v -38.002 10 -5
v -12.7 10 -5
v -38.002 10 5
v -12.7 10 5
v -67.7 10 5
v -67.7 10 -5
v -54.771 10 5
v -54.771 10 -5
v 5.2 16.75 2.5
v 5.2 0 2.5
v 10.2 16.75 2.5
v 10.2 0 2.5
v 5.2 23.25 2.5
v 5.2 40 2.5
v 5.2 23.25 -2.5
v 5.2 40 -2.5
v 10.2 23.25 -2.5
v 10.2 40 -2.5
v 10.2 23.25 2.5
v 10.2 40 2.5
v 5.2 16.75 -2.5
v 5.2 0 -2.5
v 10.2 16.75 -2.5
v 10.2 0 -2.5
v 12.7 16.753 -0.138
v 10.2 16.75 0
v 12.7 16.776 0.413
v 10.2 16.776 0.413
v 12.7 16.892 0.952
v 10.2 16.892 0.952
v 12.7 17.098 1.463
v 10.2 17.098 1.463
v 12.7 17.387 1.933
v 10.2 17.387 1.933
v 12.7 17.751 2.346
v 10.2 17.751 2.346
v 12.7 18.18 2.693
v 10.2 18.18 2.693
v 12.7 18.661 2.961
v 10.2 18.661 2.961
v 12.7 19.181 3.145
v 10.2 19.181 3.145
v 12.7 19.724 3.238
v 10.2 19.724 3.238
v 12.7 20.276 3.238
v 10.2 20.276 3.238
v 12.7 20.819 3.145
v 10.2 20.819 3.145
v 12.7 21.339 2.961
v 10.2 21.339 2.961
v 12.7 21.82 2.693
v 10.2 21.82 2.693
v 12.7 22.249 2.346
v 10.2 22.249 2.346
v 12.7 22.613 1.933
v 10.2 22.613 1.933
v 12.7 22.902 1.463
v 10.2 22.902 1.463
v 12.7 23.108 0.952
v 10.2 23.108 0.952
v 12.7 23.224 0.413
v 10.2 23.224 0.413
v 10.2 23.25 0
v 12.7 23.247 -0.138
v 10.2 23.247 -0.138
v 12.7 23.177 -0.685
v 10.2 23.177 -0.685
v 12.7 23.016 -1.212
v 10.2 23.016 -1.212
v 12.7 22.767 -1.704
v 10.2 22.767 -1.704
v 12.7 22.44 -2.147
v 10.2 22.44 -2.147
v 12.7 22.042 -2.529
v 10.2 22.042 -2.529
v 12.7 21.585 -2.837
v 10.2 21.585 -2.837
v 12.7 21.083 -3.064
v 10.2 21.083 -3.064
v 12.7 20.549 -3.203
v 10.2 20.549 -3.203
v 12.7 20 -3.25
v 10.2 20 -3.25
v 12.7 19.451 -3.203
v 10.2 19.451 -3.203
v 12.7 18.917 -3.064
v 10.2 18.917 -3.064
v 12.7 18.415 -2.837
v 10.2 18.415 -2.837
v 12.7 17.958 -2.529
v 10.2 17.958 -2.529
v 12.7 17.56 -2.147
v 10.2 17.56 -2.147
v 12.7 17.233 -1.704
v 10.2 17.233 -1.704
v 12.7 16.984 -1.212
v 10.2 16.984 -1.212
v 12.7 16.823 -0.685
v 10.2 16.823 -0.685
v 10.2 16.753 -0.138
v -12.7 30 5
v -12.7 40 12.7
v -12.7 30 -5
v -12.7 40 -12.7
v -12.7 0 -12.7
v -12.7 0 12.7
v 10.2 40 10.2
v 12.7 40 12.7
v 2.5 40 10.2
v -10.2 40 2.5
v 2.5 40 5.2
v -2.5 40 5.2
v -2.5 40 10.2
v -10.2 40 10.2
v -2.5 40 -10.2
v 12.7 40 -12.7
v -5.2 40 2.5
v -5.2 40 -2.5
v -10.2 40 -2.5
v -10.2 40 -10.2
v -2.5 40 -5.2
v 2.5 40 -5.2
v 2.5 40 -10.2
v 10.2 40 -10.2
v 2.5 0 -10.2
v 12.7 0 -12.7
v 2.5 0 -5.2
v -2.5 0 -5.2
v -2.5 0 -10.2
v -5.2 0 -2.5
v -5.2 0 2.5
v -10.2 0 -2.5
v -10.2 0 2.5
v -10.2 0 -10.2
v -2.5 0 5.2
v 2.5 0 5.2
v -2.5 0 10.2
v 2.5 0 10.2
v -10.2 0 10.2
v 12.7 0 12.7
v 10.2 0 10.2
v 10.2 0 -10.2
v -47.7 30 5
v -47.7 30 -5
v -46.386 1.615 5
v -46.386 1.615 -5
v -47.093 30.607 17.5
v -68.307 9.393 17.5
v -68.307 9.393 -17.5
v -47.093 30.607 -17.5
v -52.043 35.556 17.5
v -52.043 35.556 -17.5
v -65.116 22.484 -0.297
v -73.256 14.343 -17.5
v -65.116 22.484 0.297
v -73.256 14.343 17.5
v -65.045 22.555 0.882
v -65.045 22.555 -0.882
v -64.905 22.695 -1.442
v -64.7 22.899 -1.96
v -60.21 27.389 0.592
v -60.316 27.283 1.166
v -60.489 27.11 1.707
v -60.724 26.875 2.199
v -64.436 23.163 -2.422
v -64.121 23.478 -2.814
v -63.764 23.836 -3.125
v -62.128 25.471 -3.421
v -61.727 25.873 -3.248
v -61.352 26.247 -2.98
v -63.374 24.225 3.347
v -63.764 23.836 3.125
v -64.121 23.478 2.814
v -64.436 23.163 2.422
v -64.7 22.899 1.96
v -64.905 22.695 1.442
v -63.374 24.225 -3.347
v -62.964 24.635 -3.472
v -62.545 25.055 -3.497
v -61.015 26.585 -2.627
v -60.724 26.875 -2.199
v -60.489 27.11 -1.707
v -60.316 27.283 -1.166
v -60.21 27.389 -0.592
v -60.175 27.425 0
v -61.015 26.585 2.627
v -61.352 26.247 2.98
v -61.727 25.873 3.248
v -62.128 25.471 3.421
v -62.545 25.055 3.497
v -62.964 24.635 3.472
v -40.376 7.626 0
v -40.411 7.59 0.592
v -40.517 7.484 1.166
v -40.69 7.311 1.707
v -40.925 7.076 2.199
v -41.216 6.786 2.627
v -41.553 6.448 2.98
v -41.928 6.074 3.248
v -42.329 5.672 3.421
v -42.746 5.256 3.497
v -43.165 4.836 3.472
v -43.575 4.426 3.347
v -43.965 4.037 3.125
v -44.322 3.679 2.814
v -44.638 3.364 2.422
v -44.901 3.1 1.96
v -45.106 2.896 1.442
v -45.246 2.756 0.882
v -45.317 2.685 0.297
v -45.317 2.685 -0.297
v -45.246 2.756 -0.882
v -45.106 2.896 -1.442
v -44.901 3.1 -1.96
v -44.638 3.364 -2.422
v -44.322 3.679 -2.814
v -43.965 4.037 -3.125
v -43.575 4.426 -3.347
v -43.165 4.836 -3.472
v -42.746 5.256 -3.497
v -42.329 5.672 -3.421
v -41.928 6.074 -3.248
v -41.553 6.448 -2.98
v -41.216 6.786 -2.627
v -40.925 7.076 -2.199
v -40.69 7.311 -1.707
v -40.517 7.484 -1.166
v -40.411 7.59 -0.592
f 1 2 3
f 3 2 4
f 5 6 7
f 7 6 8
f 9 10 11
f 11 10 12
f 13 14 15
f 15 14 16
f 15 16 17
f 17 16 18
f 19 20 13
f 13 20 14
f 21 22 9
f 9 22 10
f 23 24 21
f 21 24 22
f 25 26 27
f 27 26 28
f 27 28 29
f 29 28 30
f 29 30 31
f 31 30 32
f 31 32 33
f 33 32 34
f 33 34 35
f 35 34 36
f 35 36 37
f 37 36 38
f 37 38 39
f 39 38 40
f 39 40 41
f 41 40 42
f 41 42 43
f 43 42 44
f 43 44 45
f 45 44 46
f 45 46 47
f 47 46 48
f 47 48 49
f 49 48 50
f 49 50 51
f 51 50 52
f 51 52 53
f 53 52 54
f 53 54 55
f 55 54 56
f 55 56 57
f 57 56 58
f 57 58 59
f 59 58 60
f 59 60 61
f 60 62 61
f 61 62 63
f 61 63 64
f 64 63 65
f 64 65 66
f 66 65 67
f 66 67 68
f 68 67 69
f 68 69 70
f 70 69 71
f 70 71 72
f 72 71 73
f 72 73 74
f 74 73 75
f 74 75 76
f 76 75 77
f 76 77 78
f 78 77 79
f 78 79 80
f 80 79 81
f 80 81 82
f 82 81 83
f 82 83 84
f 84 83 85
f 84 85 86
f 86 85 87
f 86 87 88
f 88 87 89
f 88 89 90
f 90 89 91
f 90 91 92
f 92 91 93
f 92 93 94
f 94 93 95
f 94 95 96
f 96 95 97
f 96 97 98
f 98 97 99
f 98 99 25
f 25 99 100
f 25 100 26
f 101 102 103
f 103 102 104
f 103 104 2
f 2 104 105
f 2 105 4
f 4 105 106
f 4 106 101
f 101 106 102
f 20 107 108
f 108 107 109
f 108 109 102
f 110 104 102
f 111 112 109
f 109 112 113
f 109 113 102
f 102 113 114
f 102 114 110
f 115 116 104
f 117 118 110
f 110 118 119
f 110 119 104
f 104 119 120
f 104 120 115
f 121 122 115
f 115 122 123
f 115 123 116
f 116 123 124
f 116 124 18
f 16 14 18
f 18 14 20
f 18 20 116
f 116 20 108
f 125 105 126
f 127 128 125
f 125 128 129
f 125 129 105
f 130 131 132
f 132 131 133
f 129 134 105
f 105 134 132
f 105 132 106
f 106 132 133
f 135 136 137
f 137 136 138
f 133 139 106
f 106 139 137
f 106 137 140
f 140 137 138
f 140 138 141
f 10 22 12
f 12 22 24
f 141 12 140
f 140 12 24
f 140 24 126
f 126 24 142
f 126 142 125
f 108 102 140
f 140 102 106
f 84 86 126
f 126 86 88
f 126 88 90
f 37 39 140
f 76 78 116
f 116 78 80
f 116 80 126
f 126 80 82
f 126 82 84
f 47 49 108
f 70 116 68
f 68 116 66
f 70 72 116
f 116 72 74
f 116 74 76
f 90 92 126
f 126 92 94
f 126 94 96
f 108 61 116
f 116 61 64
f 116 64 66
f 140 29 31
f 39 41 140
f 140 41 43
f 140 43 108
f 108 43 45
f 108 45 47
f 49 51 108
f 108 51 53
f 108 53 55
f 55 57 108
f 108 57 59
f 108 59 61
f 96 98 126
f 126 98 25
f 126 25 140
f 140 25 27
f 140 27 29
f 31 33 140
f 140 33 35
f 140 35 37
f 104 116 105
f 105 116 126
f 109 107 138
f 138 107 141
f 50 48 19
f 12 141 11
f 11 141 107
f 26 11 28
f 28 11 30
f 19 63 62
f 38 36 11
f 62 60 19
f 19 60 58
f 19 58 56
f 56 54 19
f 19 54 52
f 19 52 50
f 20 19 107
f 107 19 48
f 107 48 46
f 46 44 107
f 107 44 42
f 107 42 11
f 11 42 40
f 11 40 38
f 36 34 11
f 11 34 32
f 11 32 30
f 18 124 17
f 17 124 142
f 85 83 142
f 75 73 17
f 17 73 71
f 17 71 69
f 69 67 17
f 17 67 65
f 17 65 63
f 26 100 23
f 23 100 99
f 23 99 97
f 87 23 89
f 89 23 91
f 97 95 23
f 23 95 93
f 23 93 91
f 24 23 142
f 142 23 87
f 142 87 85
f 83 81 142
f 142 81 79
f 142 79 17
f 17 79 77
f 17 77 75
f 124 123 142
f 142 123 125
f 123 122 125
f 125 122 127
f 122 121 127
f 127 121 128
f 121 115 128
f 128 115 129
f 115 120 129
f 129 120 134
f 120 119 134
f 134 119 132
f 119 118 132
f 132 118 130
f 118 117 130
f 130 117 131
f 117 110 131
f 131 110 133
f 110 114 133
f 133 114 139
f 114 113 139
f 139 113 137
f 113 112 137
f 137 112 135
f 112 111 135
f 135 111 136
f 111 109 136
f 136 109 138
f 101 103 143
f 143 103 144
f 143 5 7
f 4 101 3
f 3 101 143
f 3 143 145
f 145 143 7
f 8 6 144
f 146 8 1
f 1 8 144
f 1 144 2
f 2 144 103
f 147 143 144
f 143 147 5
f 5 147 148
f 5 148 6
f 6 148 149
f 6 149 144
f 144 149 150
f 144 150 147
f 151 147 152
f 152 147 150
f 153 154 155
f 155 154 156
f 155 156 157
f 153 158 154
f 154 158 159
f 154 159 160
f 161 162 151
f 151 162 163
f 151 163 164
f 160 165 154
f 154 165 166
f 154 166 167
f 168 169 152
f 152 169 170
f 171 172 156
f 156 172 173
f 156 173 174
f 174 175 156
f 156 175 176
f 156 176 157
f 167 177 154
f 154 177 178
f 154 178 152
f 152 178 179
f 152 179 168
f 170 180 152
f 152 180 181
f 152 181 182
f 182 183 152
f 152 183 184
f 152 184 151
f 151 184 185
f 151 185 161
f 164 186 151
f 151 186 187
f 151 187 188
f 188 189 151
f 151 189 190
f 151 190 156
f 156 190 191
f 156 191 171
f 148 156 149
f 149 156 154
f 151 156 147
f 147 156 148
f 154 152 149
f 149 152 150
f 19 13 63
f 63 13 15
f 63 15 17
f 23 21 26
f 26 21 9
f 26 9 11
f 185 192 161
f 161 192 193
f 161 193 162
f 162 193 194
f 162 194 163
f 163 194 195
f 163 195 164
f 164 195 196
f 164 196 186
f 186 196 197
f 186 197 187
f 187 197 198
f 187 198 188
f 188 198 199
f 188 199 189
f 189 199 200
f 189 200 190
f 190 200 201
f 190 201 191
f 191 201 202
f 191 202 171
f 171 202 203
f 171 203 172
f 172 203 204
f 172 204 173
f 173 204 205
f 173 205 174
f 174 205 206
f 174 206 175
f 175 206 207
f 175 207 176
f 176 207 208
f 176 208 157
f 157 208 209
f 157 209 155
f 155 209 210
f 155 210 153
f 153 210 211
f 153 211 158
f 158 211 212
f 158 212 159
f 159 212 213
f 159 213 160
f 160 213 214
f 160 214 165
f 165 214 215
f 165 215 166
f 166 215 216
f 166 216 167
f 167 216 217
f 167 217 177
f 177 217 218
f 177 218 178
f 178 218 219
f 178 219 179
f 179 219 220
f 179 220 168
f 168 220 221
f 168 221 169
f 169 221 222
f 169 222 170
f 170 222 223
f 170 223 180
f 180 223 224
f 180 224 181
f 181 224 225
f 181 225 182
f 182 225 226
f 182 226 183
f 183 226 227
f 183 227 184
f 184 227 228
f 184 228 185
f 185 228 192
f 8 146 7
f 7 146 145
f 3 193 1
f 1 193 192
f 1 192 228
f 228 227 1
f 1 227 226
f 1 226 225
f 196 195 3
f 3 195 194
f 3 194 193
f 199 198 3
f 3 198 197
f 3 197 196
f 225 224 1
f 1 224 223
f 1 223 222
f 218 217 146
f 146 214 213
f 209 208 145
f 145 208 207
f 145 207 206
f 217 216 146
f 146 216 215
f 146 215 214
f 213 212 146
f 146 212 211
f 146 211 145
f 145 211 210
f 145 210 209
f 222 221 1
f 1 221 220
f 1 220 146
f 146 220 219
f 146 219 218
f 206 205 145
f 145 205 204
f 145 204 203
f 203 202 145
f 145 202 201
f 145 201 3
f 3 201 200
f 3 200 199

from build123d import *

# Parameters (mm, degrees)
CROQUIS1_W                 = 25.4
CROQUIS1_H                 = 25.4
SALIENTE_EXTRUIR1_DEPTH    = 40
SALIENTE_EXTRUIR3_DEPTH    = 17.5
SALIENTE_EXTRUIR4_REACH    = 76.655
CROQUIS6_W                 = 10
CROQUIS6_H                 = 20
CROQUIS9_R                 = 3.25
CORTAR_EXTRUIR3_DEPTH      = 10
CORTAR_EXTRUIR4_START      = -2.5
CROQUIS10_W                = 6.5
CROQUIS10_H                = 6.5
CORTAR_EXTRUIR4_DEPTH      = 10
CORTAR_EXTRUIR1_DEPTH      = 67.880303528
CORTAR_EXTRUIR1_DEPTH_BACK = 67.880303528
CROQUIS7_R                 = 3.5
SALIENTE_EXTRUIR5_START    = 21
CROQUIS11_W                = 10
CROQUIS11_H                = 10
CROQUIS11_R                = 3.5
SALIENTE_EXTRUIR5_DEPTH    = 21
SALIENTE_EXTRUIR6_START    = -10
SALIENTE_EXTRUIR6_DEPTH    = 10


with BuildPart() as part:
    # Croquis1 → Saliente-Extruir1 (new body)
    with BuildSketch(Plane(origin=(0, 0, 0), x_dir=(1, 0, 0), z_dir=(0, 1, 0))):
        Rectangle(CROQUIS1_W, CROQUIS1_H)
        Polygon((-10.2, 10.2), (-2.5, 10.2), (-2.5, 5.2), (2.5, 5.2), (2.5, 10.2), (10.2, 10.2), (10.2, 2.5), (5.2, 2.5), (5.2, -2.5), (10.2, -2.5), (10.2, -10.2), (2.5, -10.2), (2.5, -5.2), (-2.5, -5.2), (-2.5, -10.2), (-10.2, -10.2), (-10.2, -2.5), (-5.2, -2.5), (-5.2, 2.5), (-10.2, 2.5), align=None, mode=Mode.SUBTRACT)
    extrude(amount=SALIENTE_EXTRUIR1_DEPTH)



with BuildPart() as body_2:
    # Croquis4 → Saliente-Extruir3 (new, symmetric)
    with BuildSketch(Plane.XY):
        Polygon((-52.043145751, 35.556349186), (-47.093398282, 30.606601718), (-68.306601718, 9.393398282), (-73.256349186, 14.343145751), align=None)
    extrude(amount=SALIENTE_EXTRUIR3_DEPTH, both=True)


with BuildPart() as part_1:
    add(part.part)

    add(body_2.part)  # Saliente-Extruir4 merges body 2
    # Saliente-Extruir4: up to this plane
    saliente_extruir4_end = Plane(origin=(-68.306601718, 9.393398282, 17.5), z_dir=(-0.7071067811865436, 0.7071067811865516, 0))
    # Croquis6 → Saliente-Extruir4 (add, up to the surface)
    with BuildSketch(Plane.ZY.offset(12.7), mode=Mode.PRIVATE) as saliente_extruir4_sk1:
        with Locations((0, 20)):
            Rectangle(CROQUIS6_W, CROQUIS6_H)
    saliente_extruir4_tool1 = split(extrude(saliente_extruir4_sk1.sketch, amount=SALIENTE_EXTRUIR4_REACH, mode=Mode.PRIVATE), bisect_by=saliente_extruir4_end, keep=Keep.BOTH, mode=Mode.PRIVATE)
    add(saliente_extruir4_tool1.solids().sort_by_distance((-12.7, 20, 0))[0])

    # Croquis9 → Cortar-Extruir3 (cut)
    with BuildSketch(Plane(origin=(12.7, 0, 0), x_dir=(0, 0, -1), z_dir=(1, 0, 0))):
        with Locations((0, 20)):
            Circle(CROQUIS9_R)
    extrude(amount=-CORTAR_EXTRUIR3_DEPTH, mode=Mode.SUBTRACT)

    # Croquis10 → Cortar-Extruir4 (cut)
    with BuildSketch(Plane(origin=(12.7, 0, 0), x_dir=(0, 0, -1), z_dir=(1, 0, 0)).offset(CORTAR_EXTRUIR4_START)):
        with Locations((0, 20)):
            Rectangle(CROQUIS10_W, CROQUIS10_H)
    extrude(amount=-CORTAR_EXTRUIR4_DEPTH, mode=Mode.SUBTRACT)

    # Croquis7 → Cortar-Extruir1 (cut, two sides: drawn at the far end of the back side and taken through both)
    with BuildSketch(Plane(origin=(-38.85, 38.85, 0), x_dir=(0, 0, -1), z_dir=(0.7071067811865438, -0.7071067811865512, 0)).offset(-CORTAR_EXTRUIR1_DEPTH_BACK)):
        with Locations(Location((0, -26.657925651, 0), (0, 0, 90))):
            Circle(CROQUIS7_R)
    extrude(amount=CORTAR_EXTRUIR1_DEPTH + CORTAR_EXTRUIR1_DEPTH_BACK, mode=Mode.SUBTRACT)

    # Croquis11 → Saliente-Extruir5 (add)
    with BuildSketch(Plane(origin=(-38.85, 38.85, 0), x_dir=(0, 0, -1), z_dir=(0.7071067811865437, -0.7071067811865515, 0)).offset(SALIENTE_EXTRUIR5_START)):
        with Locations((0, -26.657925651)):
            Rectangle(CROQUIS11_W, CROQUIS11_H)
        with Locations(Location((0, -26.657925651, 0), (0, 0, 90))):
            Circle(CROQUIS11_R, mode=Mode.SUBTRACT)
    extrude(amount=-SALIENTE_EXTRUIR5_DEPTH)

    # Croquis12 → Saliente-Extruir6 (add)
    with BuildSketch(Plane.XY.offset(5).offset(SALIENTE_EXTRUIR6_START)):
        Polygon((-38.00151519, 10), (-40.628932188, 10), (-39.315223689, 8.686291501), align=None)
    extrude(amount=SALIENTE_EXTRUIR6_DEPTH)


solid = part_1.part
